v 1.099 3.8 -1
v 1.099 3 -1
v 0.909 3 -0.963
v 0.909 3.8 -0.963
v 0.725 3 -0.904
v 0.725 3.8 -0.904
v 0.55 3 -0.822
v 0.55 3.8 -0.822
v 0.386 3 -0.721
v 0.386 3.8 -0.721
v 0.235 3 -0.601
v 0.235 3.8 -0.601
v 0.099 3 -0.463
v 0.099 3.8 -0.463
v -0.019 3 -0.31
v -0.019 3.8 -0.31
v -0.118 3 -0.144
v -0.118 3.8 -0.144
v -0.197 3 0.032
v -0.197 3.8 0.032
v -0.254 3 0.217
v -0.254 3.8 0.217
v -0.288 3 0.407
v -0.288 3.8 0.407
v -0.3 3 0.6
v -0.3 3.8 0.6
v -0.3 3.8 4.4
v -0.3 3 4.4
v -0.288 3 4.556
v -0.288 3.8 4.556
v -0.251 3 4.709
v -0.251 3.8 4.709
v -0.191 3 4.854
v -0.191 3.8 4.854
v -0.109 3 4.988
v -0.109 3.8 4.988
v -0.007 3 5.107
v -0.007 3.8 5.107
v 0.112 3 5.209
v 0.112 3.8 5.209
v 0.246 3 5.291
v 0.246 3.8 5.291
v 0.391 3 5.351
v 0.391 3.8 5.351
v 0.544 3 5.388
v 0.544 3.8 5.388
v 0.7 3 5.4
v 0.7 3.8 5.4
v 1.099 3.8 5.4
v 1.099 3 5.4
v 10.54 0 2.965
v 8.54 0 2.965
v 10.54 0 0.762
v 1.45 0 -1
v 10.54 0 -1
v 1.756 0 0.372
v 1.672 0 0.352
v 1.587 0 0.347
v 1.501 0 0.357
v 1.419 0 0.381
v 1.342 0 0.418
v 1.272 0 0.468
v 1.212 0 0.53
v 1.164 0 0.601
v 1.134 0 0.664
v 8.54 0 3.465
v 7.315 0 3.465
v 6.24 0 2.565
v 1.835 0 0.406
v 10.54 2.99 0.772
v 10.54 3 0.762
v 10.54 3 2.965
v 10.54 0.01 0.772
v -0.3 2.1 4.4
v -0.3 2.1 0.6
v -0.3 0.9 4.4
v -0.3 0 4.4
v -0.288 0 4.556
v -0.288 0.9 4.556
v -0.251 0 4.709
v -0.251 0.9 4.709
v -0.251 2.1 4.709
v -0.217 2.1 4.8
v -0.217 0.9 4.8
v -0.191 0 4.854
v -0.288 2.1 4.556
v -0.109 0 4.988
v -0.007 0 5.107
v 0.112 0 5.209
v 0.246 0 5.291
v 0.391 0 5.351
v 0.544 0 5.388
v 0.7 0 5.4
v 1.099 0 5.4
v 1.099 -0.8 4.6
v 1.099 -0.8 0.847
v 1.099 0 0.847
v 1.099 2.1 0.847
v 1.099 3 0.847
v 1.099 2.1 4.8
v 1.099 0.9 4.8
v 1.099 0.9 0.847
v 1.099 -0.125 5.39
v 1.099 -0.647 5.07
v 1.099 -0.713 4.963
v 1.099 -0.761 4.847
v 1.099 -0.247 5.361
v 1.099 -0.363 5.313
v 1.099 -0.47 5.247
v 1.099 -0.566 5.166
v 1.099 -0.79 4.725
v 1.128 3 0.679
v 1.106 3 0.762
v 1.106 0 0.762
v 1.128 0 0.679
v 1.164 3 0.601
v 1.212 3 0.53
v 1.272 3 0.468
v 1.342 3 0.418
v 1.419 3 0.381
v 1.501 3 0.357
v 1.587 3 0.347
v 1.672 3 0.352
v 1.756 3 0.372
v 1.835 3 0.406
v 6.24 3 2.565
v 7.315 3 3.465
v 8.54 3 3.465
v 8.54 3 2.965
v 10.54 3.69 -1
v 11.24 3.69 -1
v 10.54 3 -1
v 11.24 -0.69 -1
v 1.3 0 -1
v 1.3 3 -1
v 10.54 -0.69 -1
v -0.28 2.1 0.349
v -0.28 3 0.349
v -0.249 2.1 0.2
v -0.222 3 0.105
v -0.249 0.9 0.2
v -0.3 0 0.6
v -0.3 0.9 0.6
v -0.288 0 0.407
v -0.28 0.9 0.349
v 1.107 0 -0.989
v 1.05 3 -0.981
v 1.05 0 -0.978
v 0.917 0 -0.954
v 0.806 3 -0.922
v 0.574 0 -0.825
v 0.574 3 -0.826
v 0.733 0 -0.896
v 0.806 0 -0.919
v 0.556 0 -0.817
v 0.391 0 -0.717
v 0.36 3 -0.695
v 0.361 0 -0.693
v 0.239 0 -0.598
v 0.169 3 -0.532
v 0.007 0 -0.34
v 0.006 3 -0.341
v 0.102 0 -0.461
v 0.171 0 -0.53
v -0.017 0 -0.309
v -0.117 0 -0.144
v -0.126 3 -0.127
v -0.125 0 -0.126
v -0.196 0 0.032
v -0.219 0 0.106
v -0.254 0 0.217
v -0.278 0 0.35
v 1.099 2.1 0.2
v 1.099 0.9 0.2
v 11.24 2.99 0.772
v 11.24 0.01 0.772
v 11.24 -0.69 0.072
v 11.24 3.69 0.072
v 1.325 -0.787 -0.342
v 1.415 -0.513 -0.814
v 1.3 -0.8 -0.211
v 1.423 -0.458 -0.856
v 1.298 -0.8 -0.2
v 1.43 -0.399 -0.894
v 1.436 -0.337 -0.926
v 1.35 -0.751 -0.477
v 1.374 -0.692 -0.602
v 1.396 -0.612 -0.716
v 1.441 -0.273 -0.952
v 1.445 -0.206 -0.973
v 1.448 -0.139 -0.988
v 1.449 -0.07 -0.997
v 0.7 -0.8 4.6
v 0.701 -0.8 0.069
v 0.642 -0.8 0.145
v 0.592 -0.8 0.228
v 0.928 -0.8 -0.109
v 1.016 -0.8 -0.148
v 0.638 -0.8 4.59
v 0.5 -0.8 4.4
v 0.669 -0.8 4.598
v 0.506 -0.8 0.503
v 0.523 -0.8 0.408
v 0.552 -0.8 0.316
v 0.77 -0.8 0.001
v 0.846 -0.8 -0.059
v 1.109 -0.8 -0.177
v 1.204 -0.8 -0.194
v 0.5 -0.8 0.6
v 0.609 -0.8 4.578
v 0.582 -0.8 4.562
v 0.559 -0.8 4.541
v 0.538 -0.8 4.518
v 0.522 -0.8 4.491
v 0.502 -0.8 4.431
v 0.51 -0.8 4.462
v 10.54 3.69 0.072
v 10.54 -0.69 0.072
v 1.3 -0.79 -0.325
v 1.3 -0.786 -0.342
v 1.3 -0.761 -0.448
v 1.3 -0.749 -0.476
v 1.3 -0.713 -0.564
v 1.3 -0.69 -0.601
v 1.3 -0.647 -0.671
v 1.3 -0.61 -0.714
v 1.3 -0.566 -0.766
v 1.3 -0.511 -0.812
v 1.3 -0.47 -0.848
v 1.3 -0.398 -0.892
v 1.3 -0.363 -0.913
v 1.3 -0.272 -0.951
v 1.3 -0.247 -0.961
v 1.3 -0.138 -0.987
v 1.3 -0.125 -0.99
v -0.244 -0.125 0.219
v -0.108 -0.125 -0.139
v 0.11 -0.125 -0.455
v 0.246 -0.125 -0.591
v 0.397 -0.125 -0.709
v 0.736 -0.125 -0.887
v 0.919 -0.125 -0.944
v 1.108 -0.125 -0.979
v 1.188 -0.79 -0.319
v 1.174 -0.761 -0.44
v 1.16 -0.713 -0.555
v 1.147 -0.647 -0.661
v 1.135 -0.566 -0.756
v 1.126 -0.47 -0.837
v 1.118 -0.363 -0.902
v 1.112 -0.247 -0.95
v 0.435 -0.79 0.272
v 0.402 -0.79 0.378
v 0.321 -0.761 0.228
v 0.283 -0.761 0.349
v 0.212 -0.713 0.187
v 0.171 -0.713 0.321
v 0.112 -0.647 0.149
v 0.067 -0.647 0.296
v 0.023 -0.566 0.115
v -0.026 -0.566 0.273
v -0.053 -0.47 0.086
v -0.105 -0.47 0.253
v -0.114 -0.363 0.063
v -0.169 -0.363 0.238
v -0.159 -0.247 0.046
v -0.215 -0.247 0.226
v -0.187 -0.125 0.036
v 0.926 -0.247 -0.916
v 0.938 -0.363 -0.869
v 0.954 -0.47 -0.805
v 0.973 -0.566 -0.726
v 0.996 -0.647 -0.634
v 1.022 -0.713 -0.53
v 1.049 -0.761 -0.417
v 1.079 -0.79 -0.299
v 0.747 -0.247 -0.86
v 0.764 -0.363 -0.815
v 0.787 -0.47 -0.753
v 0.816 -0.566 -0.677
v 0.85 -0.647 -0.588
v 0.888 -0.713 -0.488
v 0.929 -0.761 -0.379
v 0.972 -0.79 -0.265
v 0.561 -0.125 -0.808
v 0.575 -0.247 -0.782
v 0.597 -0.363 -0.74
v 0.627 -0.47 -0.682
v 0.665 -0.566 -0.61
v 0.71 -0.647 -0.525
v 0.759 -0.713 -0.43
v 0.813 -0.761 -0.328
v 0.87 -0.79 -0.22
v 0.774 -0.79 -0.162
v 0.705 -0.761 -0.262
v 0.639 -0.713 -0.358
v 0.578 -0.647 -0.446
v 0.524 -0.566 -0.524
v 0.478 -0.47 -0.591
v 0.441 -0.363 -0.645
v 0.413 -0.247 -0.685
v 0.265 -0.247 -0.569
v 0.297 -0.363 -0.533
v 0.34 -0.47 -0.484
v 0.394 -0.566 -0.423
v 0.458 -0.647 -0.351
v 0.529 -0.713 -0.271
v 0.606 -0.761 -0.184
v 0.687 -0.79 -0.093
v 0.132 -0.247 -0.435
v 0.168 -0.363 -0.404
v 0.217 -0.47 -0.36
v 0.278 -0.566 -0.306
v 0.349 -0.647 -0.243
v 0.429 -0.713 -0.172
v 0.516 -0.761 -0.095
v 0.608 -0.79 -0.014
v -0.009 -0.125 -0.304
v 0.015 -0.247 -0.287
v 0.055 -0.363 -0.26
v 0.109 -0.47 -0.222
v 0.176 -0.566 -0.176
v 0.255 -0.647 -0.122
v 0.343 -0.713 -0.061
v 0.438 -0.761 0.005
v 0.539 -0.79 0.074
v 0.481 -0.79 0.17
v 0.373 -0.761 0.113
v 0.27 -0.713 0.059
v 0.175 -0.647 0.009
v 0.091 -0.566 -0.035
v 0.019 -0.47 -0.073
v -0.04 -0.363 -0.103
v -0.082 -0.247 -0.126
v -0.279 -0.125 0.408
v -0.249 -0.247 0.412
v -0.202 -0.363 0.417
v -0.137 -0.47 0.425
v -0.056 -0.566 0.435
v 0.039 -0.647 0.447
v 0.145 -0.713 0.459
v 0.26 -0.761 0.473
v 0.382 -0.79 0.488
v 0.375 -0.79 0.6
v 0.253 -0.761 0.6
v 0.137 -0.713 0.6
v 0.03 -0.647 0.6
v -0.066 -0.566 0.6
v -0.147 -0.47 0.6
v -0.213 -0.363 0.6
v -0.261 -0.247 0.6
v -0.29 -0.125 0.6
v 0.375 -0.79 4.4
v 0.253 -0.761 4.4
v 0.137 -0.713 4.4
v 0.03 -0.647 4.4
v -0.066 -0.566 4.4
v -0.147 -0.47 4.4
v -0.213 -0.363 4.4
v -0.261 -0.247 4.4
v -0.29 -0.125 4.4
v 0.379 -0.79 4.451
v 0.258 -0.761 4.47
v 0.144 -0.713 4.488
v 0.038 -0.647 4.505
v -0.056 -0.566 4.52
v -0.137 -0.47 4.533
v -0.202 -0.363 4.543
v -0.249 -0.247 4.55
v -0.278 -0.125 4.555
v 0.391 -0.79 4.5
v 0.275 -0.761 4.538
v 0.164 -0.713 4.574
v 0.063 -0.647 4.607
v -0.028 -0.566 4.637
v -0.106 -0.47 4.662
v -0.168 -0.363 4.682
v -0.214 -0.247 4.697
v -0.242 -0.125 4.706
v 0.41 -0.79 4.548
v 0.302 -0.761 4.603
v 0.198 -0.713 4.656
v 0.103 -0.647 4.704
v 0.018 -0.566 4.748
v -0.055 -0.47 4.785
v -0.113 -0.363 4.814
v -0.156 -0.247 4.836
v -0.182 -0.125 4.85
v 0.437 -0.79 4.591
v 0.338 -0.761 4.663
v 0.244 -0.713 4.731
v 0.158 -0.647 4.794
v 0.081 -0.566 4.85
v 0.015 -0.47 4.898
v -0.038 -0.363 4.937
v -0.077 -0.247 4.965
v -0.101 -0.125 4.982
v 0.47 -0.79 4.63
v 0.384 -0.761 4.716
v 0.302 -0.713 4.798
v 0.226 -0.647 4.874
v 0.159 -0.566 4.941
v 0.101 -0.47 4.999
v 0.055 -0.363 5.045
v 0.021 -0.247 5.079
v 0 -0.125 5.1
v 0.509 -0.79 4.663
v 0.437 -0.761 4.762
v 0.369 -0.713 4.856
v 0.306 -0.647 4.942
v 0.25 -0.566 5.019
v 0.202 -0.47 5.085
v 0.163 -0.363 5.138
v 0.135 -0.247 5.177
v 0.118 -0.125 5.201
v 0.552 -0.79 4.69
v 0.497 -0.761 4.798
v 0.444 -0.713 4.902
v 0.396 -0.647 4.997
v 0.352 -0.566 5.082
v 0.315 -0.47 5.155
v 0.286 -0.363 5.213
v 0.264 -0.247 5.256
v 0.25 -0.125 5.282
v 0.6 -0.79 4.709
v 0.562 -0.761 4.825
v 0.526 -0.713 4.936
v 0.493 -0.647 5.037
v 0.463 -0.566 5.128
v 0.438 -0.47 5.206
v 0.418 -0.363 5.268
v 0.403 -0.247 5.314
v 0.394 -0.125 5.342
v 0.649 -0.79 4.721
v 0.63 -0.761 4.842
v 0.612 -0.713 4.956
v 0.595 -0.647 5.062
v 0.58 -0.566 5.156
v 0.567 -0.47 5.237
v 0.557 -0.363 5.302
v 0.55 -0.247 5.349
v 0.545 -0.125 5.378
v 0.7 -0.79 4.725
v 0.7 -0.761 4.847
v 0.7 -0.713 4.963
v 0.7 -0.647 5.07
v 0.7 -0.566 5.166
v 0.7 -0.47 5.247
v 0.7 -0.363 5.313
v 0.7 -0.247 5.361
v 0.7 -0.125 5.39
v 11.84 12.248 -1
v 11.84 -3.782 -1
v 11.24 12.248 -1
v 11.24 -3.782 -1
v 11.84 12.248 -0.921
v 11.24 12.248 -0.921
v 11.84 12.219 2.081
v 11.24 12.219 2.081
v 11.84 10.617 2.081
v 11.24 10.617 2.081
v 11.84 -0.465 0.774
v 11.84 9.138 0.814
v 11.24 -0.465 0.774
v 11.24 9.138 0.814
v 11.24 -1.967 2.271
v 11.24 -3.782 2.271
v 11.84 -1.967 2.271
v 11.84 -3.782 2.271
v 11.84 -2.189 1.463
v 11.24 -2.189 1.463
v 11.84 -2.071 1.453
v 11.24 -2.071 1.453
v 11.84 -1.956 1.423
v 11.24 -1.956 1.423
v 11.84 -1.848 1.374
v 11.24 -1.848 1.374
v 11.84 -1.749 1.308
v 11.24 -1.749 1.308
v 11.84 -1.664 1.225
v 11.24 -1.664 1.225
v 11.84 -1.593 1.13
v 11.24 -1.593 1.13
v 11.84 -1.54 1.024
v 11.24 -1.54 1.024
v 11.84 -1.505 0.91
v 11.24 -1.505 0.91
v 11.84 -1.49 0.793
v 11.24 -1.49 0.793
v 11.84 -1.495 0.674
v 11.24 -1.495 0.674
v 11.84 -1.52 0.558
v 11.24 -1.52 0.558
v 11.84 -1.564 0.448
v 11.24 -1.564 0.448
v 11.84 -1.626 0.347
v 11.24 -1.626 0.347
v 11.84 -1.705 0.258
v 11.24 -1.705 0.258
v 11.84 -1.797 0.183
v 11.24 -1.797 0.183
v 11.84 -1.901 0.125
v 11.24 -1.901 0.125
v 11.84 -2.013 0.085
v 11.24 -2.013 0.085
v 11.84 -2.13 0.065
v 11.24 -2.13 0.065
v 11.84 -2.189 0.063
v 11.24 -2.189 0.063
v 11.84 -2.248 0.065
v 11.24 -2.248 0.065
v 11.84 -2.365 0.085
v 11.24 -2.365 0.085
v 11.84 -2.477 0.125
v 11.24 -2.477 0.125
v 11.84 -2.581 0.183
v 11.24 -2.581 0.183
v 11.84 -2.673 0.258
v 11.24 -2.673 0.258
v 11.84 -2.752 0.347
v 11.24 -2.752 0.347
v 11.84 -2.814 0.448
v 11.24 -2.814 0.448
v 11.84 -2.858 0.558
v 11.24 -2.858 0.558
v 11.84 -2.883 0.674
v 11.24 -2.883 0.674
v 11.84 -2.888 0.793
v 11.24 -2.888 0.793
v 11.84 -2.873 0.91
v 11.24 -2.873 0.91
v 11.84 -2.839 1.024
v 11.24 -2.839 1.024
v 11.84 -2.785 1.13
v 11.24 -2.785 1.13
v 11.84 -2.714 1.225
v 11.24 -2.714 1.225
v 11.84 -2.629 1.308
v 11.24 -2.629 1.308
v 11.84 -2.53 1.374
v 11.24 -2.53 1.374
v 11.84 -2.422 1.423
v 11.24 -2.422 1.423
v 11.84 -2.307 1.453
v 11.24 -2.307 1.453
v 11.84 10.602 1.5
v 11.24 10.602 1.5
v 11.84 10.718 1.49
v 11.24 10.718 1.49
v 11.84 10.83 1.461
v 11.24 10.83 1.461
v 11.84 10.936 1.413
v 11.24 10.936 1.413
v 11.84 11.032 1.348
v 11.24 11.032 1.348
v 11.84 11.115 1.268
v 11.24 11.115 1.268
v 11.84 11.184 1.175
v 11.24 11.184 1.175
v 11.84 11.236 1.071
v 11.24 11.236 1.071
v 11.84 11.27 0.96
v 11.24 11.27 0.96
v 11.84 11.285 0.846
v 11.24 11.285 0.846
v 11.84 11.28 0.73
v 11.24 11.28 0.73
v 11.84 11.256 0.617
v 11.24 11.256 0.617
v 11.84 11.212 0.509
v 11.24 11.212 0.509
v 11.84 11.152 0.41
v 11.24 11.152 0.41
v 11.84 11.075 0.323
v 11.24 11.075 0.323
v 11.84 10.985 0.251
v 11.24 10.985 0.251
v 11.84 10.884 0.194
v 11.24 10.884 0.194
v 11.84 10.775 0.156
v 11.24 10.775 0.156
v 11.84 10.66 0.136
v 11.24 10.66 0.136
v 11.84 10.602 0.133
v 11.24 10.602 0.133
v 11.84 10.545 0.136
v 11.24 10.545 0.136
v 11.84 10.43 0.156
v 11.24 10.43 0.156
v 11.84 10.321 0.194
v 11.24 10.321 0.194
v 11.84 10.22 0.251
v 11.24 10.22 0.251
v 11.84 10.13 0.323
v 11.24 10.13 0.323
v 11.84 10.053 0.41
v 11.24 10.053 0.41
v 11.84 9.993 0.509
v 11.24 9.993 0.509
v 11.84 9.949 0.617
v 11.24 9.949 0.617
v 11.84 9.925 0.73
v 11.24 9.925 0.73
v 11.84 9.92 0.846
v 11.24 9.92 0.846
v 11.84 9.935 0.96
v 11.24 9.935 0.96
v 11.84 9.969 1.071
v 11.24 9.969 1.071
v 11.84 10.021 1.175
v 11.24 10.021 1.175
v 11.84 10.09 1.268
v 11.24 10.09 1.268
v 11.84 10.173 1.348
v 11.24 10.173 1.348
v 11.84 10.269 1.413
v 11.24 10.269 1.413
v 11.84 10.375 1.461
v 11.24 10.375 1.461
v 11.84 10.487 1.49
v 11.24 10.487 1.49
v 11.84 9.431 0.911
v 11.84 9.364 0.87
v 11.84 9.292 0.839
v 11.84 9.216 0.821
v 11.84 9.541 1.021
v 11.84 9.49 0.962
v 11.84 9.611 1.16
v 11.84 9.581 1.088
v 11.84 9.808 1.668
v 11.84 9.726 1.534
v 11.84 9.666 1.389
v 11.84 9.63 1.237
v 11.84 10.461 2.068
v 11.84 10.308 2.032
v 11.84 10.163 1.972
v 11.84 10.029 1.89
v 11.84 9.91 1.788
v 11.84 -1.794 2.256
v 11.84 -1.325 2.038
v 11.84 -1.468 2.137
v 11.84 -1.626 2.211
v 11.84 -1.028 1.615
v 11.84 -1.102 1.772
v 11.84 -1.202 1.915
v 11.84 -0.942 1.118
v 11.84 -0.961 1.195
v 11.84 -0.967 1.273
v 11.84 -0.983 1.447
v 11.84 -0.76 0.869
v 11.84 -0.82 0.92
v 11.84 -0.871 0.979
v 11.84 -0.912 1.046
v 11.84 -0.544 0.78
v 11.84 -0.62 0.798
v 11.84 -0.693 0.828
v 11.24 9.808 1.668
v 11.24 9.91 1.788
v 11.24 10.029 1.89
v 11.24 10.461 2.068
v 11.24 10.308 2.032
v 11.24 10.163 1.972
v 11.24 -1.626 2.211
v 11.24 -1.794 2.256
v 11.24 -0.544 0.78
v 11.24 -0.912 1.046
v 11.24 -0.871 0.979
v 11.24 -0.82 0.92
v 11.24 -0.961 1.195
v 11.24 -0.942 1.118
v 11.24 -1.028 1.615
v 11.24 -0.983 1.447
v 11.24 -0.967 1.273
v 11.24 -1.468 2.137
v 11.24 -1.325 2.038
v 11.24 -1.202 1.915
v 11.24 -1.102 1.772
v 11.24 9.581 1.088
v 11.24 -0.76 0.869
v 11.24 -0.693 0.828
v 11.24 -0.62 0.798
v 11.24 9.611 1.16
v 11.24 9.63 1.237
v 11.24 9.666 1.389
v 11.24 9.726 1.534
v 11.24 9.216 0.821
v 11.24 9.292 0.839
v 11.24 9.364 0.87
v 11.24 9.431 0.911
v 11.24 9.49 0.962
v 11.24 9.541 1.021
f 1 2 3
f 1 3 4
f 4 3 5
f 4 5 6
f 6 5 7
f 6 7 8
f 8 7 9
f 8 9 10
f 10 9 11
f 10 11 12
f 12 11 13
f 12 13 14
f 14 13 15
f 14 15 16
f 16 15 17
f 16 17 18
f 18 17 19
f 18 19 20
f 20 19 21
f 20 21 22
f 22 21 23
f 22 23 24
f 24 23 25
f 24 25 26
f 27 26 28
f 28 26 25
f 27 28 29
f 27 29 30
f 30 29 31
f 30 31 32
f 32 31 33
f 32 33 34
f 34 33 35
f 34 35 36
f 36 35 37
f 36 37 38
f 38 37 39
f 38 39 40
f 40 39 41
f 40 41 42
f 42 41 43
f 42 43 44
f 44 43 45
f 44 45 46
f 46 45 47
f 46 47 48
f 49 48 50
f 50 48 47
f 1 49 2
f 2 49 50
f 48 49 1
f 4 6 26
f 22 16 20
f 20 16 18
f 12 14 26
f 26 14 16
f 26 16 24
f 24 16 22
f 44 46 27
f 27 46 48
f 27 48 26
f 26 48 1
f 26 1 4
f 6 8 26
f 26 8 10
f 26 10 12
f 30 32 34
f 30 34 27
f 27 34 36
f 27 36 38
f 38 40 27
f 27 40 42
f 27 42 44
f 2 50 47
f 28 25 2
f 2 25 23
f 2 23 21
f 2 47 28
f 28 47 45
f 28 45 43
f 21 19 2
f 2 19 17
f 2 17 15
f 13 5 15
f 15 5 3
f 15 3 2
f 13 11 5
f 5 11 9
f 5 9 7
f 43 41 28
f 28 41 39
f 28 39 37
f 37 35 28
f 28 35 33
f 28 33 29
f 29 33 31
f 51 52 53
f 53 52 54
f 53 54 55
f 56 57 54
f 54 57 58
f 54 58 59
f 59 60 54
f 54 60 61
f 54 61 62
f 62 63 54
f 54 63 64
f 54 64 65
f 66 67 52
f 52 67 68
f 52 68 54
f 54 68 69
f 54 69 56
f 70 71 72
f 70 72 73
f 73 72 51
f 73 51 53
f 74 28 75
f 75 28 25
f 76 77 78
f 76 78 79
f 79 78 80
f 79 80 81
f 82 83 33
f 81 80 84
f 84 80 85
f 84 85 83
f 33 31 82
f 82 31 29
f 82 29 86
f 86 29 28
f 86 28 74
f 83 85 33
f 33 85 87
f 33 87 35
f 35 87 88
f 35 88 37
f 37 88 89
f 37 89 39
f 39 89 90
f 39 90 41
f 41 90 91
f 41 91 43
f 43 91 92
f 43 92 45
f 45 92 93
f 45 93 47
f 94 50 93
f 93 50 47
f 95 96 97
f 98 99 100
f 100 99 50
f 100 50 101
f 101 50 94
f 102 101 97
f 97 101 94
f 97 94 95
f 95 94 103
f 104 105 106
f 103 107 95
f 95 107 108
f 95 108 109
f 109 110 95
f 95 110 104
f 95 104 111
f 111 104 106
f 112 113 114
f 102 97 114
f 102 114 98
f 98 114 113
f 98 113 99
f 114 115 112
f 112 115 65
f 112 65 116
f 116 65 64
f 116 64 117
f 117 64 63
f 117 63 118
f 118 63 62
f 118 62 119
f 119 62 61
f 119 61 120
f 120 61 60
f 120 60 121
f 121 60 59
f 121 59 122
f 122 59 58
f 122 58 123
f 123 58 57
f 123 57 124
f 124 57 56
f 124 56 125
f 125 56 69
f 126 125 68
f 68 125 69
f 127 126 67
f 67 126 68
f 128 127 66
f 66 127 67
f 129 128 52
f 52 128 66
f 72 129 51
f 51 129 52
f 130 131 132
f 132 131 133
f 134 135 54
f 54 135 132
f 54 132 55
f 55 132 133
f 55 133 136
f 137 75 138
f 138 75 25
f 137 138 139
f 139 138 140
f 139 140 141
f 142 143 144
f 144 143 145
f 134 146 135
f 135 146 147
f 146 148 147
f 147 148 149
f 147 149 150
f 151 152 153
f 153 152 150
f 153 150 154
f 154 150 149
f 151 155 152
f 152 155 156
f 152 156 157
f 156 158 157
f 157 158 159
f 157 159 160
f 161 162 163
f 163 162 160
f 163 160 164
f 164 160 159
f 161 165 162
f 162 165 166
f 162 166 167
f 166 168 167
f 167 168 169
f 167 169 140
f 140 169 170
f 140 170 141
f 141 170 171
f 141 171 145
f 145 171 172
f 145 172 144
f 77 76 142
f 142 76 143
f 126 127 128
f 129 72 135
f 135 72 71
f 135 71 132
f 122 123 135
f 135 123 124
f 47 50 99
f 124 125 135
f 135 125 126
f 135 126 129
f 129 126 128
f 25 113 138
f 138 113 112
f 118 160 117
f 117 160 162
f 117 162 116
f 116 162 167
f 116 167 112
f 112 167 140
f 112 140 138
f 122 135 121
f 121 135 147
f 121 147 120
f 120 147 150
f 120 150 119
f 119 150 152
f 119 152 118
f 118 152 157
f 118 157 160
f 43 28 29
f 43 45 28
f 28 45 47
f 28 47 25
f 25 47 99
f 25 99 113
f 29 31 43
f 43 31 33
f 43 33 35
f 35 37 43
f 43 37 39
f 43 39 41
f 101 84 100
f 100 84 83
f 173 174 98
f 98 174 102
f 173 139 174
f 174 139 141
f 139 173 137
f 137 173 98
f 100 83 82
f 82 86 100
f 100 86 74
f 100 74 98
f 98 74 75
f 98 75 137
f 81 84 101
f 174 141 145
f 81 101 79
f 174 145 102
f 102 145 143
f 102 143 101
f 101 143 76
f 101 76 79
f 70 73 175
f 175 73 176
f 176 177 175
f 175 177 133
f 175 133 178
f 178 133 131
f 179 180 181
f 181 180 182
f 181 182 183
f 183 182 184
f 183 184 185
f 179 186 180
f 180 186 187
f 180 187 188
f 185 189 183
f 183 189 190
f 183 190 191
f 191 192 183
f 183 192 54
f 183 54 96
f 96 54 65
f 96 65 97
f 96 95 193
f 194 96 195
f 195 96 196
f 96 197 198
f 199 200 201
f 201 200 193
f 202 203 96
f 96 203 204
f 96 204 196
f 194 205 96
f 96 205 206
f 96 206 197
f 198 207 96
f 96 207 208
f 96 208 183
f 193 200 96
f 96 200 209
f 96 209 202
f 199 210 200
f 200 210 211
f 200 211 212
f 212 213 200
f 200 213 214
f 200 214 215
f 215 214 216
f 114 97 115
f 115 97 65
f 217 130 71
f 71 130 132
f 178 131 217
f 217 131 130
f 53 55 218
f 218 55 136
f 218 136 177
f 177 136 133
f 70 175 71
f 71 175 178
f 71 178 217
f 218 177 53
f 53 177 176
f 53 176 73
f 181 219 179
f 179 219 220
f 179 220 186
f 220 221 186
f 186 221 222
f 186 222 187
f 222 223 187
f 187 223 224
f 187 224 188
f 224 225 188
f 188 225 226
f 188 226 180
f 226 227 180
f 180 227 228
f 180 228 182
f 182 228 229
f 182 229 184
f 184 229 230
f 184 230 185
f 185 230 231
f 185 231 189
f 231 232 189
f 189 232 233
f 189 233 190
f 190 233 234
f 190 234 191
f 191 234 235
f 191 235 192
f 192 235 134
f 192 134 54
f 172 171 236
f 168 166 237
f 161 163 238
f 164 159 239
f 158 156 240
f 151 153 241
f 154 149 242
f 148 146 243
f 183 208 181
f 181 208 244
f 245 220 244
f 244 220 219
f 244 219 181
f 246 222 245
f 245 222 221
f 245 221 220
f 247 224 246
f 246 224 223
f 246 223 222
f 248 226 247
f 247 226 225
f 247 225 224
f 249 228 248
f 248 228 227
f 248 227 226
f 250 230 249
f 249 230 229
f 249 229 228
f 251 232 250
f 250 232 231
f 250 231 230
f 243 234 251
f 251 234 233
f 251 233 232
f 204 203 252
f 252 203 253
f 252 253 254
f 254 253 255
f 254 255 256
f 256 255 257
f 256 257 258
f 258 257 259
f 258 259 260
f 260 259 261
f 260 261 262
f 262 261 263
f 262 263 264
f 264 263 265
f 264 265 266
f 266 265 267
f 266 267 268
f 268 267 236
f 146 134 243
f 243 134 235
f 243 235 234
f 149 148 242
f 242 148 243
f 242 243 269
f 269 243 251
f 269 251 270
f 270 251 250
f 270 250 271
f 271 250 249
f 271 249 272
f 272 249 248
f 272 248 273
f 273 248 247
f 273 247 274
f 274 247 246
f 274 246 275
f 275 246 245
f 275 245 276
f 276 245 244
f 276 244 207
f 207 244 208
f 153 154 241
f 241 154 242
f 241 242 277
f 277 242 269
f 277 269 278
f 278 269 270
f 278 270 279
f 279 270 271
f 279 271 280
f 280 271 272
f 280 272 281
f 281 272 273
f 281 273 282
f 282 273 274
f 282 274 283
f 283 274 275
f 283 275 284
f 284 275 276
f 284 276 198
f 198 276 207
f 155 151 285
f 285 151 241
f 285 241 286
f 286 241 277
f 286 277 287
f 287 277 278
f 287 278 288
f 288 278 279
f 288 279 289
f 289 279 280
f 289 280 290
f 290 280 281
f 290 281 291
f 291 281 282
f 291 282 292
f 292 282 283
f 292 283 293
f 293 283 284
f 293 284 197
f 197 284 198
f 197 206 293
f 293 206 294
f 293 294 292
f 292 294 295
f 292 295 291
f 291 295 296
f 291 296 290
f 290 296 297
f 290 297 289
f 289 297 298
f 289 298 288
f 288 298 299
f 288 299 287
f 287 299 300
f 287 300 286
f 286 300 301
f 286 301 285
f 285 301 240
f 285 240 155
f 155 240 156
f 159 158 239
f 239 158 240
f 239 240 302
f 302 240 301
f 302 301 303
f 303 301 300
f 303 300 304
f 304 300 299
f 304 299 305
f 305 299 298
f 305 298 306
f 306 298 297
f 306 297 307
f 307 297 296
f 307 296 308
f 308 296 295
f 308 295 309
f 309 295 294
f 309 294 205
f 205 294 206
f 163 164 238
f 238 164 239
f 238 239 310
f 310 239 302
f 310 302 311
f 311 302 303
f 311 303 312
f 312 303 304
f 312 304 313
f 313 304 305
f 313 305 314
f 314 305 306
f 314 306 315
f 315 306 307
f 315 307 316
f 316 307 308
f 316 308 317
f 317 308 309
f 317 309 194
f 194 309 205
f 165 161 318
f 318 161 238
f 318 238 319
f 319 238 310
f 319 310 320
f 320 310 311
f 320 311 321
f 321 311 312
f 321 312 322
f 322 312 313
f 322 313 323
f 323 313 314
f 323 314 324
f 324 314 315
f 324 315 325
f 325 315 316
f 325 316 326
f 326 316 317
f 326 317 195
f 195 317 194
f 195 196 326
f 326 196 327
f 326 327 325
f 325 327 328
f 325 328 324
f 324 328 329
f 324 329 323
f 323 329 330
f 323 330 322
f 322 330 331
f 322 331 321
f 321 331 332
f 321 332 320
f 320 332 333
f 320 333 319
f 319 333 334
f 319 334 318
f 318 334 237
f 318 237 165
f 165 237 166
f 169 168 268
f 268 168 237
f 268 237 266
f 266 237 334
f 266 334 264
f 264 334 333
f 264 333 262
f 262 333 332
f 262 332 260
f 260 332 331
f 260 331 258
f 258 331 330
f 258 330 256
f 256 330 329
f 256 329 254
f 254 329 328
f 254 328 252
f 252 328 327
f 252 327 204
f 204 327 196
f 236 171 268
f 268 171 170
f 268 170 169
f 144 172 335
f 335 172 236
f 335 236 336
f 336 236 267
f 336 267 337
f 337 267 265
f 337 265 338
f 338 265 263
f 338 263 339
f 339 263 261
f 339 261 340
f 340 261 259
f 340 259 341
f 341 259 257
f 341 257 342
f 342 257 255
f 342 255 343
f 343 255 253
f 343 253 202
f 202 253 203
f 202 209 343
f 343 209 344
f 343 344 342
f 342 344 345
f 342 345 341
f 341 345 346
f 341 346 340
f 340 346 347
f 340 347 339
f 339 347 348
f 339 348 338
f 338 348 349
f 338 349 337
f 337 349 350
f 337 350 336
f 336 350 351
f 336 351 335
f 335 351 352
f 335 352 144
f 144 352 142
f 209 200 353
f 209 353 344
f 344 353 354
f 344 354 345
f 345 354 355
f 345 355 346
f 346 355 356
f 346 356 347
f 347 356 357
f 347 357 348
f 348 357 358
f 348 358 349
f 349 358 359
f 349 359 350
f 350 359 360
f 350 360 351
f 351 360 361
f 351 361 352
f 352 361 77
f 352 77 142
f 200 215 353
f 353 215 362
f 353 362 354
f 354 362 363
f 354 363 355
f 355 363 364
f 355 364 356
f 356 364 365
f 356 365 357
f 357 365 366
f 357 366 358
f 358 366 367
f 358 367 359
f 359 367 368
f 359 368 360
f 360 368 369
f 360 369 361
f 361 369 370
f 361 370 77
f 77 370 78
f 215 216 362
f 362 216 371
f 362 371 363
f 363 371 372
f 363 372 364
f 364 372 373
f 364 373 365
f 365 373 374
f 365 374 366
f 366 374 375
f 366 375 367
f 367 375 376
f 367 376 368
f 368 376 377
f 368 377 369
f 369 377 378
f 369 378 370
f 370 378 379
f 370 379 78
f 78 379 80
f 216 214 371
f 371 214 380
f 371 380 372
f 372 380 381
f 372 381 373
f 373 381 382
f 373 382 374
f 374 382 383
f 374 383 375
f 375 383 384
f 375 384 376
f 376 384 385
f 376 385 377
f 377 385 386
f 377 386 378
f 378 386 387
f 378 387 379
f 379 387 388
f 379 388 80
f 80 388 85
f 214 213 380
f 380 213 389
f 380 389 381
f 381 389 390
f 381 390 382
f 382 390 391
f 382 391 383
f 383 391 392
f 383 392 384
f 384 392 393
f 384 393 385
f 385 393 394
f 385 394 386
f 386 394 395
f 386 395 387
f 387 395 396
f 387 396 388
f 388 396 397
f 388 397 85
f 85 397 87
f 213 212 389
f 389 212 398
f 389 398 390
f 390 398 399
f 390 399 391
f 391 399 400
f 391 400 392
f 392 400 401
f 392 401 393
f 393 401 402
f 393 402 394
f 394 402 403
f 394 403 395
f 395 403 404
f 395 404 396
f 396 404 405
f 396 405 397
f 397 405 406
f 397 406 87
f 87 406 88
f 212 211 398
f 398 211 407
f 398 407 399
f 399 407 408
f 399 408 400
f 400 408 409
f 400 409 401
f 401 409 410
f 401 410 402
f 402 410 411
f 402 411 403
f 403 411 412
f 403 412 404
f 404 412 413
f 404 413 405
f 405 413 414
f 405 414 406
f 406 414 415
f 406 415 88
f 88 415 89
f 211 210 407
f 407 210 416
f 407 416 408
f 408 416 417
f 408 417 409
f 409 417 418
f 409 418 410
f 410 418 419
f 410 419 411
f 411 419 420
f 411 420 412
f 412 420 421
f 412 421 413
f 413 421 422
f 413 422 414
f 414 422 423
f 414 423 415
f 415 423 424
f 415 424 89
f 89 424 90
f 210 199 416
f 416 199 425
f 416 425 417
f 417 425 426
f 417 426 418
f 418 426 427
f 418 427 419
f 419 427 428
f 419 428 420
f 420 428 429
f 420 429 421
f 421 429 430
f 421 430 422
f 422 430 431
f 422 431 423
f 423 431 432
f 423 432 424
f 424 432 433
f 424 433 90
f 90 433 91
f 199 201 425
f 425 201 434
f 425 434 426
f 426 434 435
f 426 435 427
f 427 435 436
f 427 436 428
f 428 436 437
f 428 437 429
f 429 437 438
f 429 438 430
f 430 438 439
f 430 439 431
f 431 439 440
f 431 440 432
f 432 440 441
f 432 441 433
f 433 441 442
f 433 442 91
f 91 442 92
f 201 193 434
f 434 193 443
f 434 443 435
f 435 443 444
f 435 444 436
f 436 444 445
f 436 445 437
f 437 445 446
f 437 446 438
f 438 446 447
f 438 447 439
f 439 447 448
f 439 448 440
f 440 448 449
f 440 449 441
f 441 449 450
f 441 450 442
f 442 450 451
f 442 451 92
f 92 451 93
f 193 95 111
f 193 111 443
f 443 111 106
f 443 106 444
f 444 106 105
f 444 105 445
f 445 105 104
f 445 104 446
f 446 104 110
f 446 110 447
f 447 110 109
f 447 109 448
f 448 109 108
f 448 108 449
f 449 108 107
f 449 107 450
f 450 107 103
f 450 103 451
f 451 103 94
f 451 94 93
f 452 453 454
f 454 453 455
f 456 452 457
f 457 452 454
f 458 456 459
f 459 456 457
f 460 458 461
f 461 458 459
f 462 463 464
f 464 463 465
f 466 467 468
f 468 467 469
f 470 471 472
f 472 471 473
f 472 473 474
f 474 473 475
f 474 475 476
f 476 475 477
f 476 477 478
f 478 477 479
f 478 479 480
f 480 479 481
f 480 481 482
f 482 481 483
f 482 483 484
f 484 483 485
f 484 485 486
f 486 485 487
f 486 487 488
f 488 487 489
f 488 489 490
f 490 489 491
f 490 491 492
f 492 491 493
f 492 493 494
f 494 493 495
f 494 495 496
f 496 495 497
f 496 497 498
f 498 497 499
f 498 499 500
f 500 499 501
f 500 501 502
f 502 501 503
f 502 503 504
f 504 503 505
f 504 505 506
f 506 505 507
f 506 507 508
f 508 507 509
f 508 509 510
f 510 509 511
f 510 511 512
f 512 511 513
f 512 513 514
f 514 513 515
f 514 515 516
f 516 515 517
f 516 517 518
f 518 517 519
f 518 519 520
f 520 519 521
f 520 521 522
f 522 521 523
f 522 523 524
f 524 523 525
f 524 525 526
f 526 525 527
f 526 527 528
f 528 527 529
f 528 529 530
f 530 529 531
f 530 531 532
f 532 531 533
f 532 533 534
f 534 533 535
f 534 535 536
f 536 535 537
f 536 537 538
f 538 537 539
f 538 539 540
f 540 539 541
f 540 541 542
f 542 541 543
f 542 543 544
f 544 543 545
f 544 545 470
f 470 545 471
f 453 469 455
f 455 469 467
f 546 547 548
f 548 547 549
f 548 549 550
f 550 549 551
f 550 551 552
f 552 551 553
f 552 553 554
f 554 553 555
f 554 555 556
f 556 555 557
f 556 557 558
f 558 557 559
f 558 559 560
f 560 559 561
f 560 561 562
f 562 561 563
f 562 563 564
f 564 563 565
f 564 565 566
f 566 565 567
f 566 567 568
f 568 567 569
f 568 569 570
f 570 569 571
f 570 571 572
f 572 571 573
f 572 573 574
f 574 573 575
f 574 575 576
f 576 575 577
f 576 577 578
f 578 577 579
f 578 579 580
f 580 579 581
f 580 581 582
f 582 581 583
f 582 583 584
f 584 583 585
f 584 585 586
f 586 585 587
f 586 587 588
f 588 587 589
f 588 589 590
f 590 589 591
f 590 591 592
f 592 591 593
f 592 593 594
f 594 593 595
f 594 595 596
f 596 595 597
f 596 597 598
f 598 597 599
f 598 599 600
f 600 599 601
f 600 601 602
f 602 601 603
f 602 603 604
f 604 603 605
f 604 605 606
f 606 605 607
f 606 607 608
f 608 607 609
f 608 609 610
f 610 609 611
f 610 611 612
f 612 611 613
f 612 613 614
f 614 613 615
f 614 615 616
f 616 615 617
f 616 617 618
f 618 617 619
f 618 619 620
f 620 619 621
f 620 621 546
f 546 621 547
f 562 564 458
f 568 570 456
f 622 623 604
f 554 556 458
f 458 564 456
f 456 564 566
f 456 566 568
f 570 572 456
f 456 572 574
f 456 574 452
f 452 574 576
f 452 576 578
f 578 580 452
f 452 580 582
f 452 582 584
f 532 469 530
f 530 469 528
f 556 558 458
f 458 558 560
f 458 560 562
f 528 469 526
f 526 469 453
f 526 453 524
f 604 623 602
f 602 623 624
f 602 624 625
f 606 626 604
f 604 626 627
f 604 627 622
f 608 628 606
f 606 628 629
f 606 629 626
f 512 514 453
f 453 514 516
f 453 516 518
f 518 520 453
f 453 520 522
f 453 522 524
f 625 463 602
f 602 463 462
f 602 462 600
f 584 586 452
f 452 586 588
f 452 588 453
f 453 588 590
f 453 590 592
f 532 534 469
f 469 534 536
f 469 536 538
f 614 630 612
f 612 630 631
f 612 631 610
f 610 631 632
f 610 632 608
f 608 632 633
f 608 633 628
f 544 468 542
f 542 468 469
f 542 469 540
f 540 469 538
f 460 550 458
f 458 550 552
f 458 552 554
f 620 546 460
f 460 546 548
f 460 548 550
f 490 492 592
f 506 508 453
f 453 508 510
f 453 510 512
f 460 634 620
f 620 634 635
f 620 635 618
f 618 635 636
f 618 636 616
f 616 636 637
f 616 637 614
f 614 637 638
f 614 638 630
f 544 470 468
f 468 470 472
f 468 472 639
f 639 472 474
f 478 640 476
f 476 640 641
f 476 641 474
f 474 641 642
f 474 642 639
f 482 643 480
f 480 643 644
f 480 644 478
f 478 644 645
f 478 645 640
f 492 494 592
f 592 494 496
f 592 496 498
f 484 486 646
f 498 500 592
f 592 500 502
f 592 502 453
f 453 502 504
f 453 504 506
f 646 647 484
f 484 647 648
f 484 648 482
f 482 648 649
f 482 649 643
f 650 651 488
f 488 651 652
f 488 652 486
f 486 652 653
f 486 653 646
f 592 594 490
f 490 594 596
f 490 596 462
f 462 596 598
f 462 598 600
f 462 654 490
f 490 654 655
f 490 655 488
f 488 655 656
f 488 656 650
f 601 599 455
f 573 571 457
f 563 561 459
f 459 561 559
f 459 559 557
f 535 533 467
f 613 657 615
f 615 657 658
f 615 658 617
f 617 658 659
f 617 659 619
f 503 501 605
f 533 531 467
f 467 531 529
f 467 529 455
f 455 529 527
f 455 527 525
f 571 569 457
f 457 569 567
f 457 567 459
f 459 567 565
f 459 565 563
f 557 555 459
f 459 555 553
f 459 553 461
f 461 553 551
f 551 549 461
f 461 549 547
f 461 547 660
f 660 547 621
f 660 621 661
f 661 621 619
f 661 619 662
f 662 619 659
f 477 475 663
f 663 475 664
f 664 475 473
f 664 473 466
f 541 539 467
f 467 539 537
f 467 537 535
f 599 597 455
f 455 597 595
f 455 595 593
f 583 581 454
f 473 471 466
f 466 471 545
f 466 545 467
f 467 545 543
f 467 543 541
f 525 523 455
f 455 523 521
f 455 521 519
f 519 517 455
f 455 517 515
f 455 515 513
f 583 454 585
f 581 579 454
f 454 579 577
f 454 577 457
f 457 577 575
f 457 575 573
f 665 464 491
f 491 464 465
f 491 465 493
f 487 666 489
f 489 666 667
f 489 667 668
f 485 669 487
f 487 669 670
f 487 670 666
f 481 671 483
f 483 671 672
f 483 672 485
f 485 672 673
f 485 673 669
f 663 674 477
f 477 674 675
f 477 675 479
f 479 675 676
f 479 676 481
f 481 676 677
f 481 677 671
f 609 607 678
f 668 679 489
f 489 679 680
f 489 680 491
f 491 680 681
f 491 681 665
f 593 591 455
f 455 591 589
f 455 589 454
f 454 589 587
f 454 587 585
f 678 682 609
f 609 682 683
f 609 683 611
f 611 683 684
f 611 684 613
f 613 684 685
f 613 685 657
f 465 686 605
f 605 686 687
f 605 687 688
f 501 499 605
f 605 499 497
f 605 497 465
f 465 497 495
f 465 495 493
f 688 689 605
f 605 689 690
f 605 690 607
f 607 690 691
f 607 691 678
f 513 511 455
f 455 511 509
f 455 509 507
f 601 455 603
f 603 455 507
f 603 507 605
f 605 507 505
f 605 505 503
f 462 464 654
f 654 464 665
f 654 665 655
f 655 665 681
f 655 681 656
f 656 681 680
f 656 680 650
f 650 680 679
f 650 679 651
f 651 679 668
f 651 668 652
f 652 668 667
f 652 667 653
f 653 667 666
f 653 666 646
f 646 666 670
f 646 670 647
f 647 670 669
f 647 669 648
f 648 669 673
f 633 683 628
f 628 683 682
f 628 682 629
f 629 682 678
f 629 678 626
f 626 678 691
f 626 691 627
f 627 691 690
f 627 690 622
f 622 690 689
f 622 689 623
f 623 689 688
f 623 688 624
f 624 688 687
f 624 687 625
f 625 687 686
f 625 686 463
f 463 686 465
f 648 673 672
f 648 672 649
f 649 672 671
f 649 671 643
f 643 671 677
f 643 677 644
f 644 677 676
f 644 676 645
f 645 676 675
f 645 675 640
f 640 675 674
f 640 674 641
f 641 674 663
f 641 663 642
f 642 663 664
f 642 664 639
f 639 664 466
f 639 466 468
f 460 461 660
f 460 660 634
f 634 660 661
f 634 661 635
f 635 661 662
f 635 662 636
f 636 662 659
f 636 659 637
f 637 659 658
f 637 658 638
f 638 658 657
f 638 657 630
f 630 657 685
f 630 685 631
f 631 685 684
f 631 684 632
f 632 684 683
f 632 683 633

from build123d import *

# Parameters (mm, degrees)
BOSS_EXTRUDE5_DEPTH  = 3
SKETCH13_W           = 4.6
SKETCH13_H           = 1.2
CUT_EXTRUDE5_DEPTH   = 1.398785094
SKETCH14_W           = 1.772405836
SKETCH14_H           = 3
BOSS_EXTRUDE6_DEPTH  = 0.7
BOSS_EXTRUDE7_START  = 0.8
BOSS_EXTRUDE7_DEPTH  = 0.8
BOSS_EXTRUDE8_DEPTH  = 0.8
SKETCH17_W           = 0.7
SKETCH17_H           = 1.772405836
BOSS_EXTRUDE9_DEPTH  = 0.69
SKETCH18_W           = 0.7
SKETCH18_H           = 1.772405836
BOSS_EXTRUDE10_DEPTH = 0.69
CHAMFER1_SIZE        = 0.7
FILLET7_R            = 0.8
SKETCH19_R           = 0.699995293
SKETCH19_R_2         = 0.683077483
BOSS_EXTRUDE11_DEPTH = 0.6
FILLET9_R            = 0.5
FILLET10_R           = 1


with BuildPart() as part:
    # Sketch12 → Boss-Extrude5 (new body)
    with BuildSketch(Plane(origin=(0, 0, 0), x_dir=(1, 0, 0), z_dir=(0, 1, 0))):
        with BuildLine():
            Line((0.7, -5.4), (1.098785094, -5.4))
            Line((1.098785094, -5.4), (1.098785094, -0.847061546))
            ThreePointArc((1.098785094, -0.847061546), (1.341799578, -0.418157775), (1.834618872, -0.406173319))
            Line((1.834618872, -0.406173319), (6.24, -2.564530465))
            Line((6.24, -2.564530465), (7.314759908, -3.464530465))
            Line((7.314759908, -3.464530465), (8.54, -3.464530465))
            Line((8.54, -3.464530465), (8.54, -2.964530465))
            Line((8.54, -2.964530465), (10.54, -2.964530465))
            Line((10.54, -2.964530465), (10.54, 1.000327451))
            Line((10.54, 1.000327451), (1.6, 1.000327451))
            Line((1.6, 1.000327451), (1.3, 1.000327451))
            ThreePointArc((1.3, 1.000327451), (0.16862915, 0.531698301), (-0.3, -0.599672549))
            Line((-0.3, -0.599672549), (-0.3, -4.4))
            ThreePointArc((-0.3, -4.4), (-0.007106781, -5.107106781), (0.7, -5.4))
        make_face()
    extrude(amount=BOSS_EXTRUDE5_DEPTH)

    # Sketch13 → Cut-Extrude5 (cut)
    with BuildSketch(Plane.ZY.offset(0.3)):
        with Locations((2.5, 1.5)):
            Rectangle(SKETCH13_W, SKETCH13_H)
    extrude(amount=-CUT_EXTRUDE5_DEPTH, mode=Mode.SUBTRACT)

    # Sketch14 → Boss-Extrude6 (add)
    with BuildSketch(Plane(origin=(10.54, 0, 0), x_dir=(0, 0, -1), z_dir=(1, 0, 0))):
        with Locations((0.114124533, 1.5)):
            Rectangle(SKETCH14_W, SKETCH14_H)
    extrude(amount=BOSS_EXTRUDE6_DEPTH)

    # Sketch15 → Boss-Extrude7 (add)
    with BuildSketch(Plane.XZ.offset(BOSS_EXTRUDE7_START)):
        with BuildLine():
            Line((-0.3, 0.599672549), (-0.3, 4.4))
            ThreePointArc((-0.3, 4.4), (-0.007106781, 5.107106781), (0.7, 5.4))
            Line((0.7, 5.4), (1.098785094, 5.4))
            Line((1.098785094, 5.4), (1.098785094, 0.847061546))
            Line((1.098785094, 0.847061546), (1.45, -1.000327451))
            Line((1.45, -1.000327451), (1.3, -1.000327451))
            ThreePointArc((1.3, -1.000327451), (0.16862915, -0.531698301), (-0.3, 0.599672549))
        make_face()
    extrude(amount=-BOSS_EXTRUDE7_DEPTH)

    # Sketch17 → Boss-Extrude9 (add)
    with BuildSketch(Plane(origin=(0, 3, 0), x_dir=(1, 0, 0), z_dir=(0, 1, 0))):
        with Locations((10.89, 0.114124533)):
            Rectangle(SKETCH17_W, SKETCH17_H)
    extrude(amount=BOSS_EXTRUDE9_DEPTH)

    # Sketch18 → Boss-Extrude10 (add)
    with BuildSketch(Plane.XZ):
        with Locations((10.89, -0.114124533)):
            Rectangle(SKETCH18_W, SKETCH18_H)
    extrude(amount=BOSS_EXTRUDE10_DEPTH)

    # Chamfer1
    # the kernel refuses this chamfer: 0.7 mm, written as the material it takes off along each edge
    with BuildSketch(Plane(origin=(13.040178092, 3.69, 0.772078385), x_dir=(0, -0.9996219169112968, 0.027495876610586445), z_dir=(-1, 0, 0))) as chamfer1_piece_1:
        Polygon((CHAMFER1_SIZE * 0.999621916911, -CHAMFER1_SIZE * 0.0274958766106), (-CHAMFER1_SIZE * 0.0274958766106, -CHAMFER1_SIZE * 0.999621916911), (0, 0), align=None)
    extrude(amount=2.500178092, mode=Mode.SUBTRACT)
    with BuildSketch(Plane(origin=(13.040178092, -0.69, 0.772078385), x_dir=(0, 0.9996219169112968, 0.027495876610586438), z_dir=(-1, 0, 0))) as chamfer1_piece_2:
        Polygon((CHAMFER1_SIZE * 0.999621916911, CHAMFER1_SIZE * 0.0274958766106), (-CHAMFER1_SIZE * 0.0274958766106, CHAMFER1_SIZE * 0.999621916911), (0, 0), align=None)
    extrude(amount=2.500178092, mode=Mode.SUBTRACT)

    # Fillet7
    # the kernel refuses this fillet: 0.8 mm, written as the material it takes off along each edge
    with BuildSketch(Plane(origin=(0.7, -0.8, 5.4), x_dir=(0, 0, -1), z_dir=(1, 0, 0))) as fillet7_piece_1:
        with BuildLine():
            CenterArc((FILLET7_R, FILLET7_R), FILLET7_R, 180, 90)
            Line((0, FILLET7_R), (0, 0))
            Line((0, 0), (FILLET7_R, 0))
        make_face()
    extrude(amount=2.398785094, mode=Mode.SUBTRACT)
    with BuildSketch(Plane(origin=(3.45, -0.8, -1.000327451), x_dir=(0, 0, 1), z_dir=(-1, 0, 0))) as fillet7_piece_2:
        with BuildLine():
            CenterArc((FILLET7_R, FILLET7_R), FILLET7_R, 180, 90)
            Line((0, FILLET7_R), (0, 0))
            Line((0, 0), (FILLET7_R, 0))
        make_face()
    extrude(amount=2.15, mode=Mode.SUBTRACT)
    with BuildSketch(Plane(origin=(1.3, -0.8, 0.599672549), x_dir=(0, 0, -1), z_dir=(1, 0, 0))) as fillet7_piece_3:
        with BuildLine():
            CenterArc((1.6 - FILLET7_R, FILLET7_R), FILLET7_R, 270, 90)
            Line((1.6, FILLET7_R), (1.6, 0))
            Line((1.6, 0), (1.6 - FILLET7_R, 0))
        make_face()
    revolve(axis=Axis((1.3, -0.8, 0.599672549), (0, 1, 0)), revolution_arc=90, mode=Mode.SUBTRACT)
    with BuildSketch(Plane(origin=(-0.3, -0.8, 0.599672549), x_dir=(1, 0, 0), z_dir=(0, 0, 1))) as fillet7_piece_4:
        with BuildLine():
            CenterArc((FILLET7_R, FILLET7_R), FILLET7_R, 180, 90)
            Line((0, FILLET7_R), (0, 0))
            Line((0, 0), (FILLET7_R, 0))
        make_face()
    extrude(amount=3.800327451, mode=Mode.SUBTRACT)
    with BuildSketch(Plane(origin=(0.7, -0.8, 4.4), x_dir=(-1, 0, 0), z_dir=(0, 0, -1))) as fillet7_piece_5:
        with BuildLine():
            CenterArc((1 - FILLET7_R, FILLET7_R), FILLET7_R, 270, 90)
            Line((1, FILLET7_R), (1, 0))
            Line((1, 0), (1 - FILLET7_R, 0))
        make_face()
    revolve(axis=Axis((0.7, -0.8, 4.4), (0, 1, 0)), revolution_arc=90, mode=Mode.SUBTRACT)


with BuildPart() as body_2:
    # Sketch16 → Boss-Extrude8 (new body)
    with BuildSketch(Plane(origin=(0, 3, 0), x_dir=(1, 0, 0), z_dir=(0, 1, 0))):
        with BuildLine():
            Line((1.098785094, -5.4), (1.098785094, -0.847061546))
            Line((1.098785094, -0.847061546), (1.098785094, 1.000327451))
            ThreePointArc((1.098785094, 1.000327451), (0.09900082, 0.46294212), (-0.3, -0.599672549))
            Line((-0.3, -0.599672549), (-0.3, -4.4))
            ThreePointArc((-0.3, -4.4), (-0.007106781, -5.107106781), (0.7, -5.4))
            Line((0.7, -5.4), (1.098785094, -5.4))
        make_face()
    extrude(amount=BOSS_EXTRUDE8_DEPTH)


with BuildPart() as body_3:
    # Sketch19 → Boss-Extrude11 (new body)
    # profile 1 of 2: a face of its own
    with BuildSketch(Plane(origin=(11.24, 0, 0), x_dir=(0, 0, -1), z_dir=(1, 0, 0))):
        Polygon((1.000327451, 12.248278955), (0.920966212, 12.248278955), (-2.080817644, 12.219038508), (-2.080817644, 9.635603478), (-0.816557514, 9.635603478), (-0.772078385, -0.967307084), (-2.271016584, -0.967307084), (-2.271016584, -3.781900205), (1.000327451, -3.781900205), (1.000327451, -0.69), (-0.072078385, -0.69), (-0.772078385, 0.01), (-0.772078385, 2.99), (-0.072078385, 3.69), (1.000327451, 3.69), align=None)
        with Locations((-0.762895052, -2.189022372)):
            Circle(SKETCH19_R, mode=Mode.SUBTRACT)
        with Locations((-0.816557514, 10.602447151)):
            Circle(SKETCH19_R_2, mode=Mode.SUBTRACT)
    # profile 2 of 2: a face of its own
    with BuildSketch(Plane(origin=(11.24, 0, 0), x_dir=(0, 0, -1), z_dir=(1, 0, 0))):
        Polygon((1.000327451, -0.69), (1.000327451, 3.69), (-0.072078385, 3.69), (-0.772078385, 2.99), (-0.772078385, 0.01), (-0.072078385, -0.69), align=None)
    extrude(amount=BOSS_EXTRUDE11_DEPTH)

    # Fillet9
    fillet9_edges = [body_3.edges().sort_by_distance(p)[0] for p in [
        (11.54, -0.967307084, 0.772078385),
        (11.54, 9.635603478, 0.816557514),
    ]]
    fillet(fillet9_edges, radius=FILLET9_R)

    # Fillet10
    fillet10_edges = [body_3.edges().sort_by_distance(p)[0] for p in [
        (11.54, -0.967307084, 2.271016584),
        (11.54, 9.635603478, 2.080817644),
    ]]
    fillet(fillet10_edges, radius=FILLET10_R)


solid = Compound([part.part, body_2.part, body_3.part])
